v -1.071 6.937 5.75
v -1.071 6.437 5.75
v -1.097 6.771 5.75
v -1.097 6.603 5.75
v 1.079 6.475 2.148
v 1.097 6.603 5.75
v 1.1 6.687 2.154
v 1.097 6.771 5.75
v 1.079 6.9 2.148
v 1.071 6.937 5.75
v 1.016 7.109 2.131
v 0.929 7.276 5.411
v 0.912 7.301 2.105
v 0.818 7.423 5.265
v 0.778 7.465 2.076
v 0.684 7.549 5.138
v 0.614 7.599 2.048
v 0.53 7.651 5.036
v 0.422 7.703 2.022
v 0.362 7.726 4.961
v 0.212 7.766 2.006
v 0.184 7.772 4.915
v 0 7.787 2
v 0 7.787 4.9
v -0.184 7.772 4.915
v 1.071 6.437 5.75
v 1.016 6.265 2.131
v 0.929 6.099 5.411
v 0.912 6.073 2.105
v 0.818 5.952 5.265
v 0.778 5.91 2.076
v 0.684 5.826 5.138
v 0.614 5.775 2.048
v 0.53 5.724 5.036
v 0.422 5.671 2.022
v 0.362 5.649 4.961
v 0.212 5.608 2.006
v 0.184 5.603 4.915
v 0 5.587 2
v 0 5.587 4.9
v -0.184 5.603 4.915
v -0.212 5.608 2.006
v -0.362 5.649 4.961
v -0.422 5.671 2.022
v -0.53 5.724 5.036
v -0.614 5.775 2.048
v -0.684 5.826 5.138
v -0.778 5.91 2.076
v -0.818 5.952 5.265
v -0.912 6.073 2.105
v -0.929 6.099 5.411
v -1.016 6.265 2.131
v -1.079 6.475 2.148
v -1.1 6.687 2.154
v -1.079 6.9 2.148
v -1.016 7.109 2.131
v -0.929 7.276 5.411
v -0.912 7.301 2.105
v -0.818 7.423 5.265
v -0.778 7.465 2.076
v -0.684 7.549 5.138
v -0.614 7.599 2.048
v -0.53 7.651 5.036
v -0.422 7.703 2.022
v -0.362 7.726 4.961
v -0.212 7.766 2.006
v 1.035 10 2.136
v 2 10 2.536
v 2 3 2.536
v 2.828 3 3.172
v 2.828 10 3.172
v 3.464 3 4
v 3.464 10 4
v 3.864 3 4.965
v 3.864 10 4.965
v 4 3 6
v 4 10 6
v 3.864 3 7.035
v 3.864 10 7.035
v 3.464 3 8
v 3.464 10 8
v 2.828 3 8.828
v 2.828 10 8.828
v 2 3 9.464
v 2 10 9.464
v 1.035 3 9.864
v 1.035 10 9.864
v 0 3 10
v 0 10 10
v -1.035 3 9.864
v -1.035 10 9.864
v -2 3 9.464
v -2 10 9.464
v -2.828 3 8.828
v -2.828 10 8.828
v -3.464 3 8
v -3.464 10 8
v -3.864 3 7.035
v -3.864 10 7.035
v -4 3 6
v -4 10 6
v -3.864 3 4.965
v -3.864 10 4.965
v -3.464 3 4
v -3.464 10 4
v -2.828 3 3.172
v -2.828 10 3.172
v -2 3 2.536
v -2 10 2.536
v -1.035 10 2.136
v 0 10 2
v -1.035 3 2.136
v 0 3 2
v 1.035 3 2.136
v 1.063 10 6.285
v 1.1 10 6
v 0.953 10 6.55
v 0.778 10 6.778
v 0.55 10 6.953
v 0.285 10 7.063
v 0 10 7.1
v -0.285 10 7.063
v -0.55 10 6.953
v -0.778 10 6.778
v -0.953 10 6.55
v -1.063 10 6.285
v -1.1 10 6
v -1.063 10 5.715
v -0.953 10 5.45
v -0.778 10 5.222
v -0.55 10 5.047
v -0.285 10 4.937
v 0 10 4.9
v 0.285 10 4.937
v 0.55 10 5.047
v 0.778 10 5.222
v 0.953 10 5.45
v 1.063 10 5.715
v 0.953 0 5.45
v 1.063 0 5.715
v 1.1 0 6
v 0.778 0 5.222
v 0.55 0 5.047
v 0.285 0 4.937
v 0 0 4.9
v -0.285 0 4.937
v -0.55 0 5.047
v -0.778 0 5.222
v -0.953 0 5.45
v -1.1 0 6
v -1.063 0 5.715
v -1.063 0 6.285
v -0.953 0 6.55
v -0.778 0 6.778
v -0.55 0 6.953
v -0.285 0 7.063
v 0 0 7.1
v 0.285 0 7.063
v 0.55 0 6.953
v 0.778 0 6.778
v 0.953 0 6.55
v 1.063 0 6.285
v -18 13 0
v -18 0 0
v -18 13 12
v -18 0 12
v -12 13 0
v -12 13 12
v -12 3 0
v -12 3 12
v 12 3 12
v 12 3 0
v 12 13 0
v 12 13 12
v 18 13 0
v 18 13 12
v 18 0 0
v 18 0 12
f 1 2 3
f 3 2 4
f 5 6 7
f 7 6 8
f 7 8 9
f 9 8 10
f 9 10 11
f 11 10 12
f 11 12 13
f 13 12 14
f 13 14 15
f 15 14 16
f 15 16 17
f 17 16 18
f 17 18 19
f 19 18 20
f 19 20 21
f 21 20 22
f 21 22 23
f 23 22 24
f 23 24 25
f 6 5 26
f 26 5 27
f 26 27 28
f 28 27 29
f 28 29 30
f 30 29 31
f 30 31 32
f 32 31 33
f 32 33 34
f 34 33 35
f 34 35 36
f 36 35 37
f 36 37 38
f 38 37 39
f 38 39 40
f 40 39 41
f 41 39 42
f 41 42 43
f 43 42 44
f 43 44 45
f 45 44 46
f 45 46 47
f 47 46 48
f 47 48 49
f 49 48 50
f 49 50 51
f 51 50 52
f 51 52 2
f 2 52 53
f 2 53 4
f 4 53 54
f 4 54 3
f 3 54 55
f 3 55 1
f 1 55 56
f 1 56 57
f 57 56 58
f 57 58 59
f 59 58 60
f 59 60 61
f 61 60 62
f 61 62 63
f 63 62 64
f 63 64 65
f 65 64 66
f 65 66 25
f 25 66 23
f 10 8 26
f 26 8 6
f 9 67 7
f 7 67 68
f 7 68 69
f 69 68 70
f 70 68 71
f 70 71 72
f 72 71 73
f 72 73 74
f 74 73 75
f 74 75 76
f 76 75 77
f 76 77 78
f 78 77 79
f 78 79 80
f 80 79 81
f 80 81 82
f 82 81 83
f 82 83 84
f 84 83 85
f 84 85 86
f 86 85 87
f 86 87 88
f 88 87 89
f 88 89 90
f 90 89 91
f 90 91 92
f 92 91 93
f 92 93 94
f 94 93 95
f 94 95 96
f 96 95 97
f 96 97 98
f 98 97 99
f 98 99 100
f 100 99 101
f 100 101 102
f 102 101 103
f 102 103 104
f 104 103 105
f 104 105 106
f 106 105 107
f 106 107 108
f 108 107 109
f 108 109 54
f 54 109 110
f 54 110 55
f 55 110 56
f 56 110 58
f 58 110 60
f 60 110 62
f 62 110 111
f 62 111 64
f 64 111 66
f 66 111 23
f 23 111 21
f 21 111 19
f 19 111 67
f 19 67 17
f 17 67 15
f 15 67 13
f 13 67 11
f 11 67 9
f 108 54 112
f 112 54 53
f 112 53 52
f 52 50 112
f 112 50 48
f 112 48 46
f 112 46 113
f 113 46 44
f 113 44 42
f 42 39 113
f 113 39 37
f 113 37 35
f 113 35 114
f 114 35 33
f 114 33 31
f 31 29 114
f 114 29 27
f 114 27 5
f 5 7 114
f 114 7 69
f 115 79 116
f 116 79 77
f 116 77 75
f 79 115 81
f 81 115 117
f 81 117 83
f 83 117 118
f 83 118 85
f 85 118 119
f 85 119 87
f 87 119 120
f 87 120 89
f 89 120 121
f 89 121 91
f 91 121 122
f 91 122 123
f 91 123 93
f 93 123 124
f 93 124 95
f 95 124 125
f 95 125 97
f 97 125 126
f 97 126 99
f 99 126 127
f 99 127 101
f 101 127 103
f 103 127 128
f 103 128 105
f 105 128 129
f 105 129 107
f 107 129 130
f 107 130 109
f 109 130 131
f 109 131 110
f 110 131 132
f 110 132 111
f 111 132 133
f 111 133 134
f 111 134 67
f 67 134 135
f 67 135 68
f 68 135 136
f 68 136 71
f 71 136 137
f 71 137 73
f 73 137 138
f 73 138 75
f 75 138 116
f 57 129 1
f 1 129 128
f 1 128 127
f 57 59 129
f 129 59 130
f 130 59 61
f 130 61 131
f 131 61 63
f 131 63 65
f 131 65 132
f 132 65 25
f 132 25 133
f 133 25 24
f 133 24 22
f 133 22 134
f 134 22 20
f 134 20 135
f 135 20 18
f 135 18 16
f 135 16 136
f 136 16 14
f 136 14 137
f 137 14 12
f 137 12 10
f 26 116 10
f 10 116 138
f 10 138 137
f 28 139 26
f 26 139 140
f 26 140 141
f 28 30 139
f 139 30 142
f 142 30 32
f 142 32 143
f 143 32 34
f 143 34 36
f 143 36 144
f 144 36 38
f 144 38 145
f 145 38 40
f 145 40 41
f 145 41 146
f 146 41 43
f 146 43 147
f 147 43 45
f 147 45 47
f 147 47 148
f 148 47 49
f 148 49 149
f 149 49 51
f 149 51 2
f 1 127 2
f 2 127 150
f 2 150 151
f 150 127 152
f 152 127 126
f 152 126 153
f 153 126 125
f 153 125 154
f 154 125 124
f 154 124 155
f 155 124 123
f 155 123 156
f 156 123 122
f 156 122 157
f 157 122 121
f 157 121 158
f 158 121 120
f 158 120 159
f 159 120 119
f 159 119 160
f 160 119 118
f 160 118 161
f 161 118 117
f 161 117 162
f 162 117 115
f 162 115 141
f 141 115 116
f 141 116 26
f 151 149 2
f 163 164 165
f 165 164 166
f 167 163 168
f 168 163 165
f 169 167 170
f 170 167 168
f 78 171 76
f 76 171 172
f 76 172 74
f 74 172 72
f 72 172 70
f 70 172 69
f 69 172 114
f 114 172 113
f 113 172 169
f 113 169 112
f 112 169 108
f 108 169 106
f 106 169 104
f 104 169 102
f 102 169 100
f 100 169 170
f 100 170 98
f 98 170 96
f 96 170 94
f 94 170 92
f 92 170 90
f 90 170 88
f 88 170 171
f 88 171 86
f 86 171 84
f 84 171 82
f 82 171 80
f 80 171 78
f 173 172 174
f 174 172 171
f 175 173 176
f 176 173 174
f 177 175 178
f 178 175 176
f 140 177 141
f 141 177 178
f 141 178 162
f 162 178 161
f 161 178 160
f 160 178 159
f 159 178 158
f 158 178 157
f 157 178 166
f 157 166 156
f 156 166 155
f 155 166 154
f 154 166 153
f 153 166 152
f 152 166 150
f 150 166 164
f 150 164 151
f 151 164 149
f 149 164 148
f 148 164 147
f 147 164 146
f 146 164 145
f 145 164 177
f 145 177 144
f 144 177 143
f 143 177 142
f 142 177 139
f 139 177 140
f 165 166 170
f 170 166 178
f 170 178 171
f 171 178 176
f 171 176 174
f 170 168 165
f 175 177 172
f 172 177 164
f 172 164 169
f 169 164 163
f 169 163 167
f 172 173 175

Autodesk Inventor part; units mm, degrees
ref_plane "YZ Plane" through (0, 0, 0) normal (1, 0, 0) x (0, 1, 0)
ref_plane "XZ Plane" through (0, 0, 0) normal (0, 1, 0) x (-1, 0, 0)
ref_plane "XY Plane" through (0, 0, 0) normal (0, 0, 1) x (1, 0, 0)
sketch "Sketch1" plane through (0, 0, 0) normal (0, 0, 1) x (1, 0, 0)
  line L0 (0, 0) -> (18, 0)
  line L1 (18, 0) -> (18, 13)
  line L2 (18, 13) -> (12, 13)
  line L3 (12, 13) -> (12, 3)
  line L4 (12, 3) -> (0, 3)
  line L5 (0, 3) -> (0, 0) construction
  line L6 (0, 0) -> (-18, 0)
  line L7 (-18, 0) -> (-18, 13)
  line L8 (-18, 13) -> (-12, 13)
  line L9 (-12, 13) -> (-12, 3)
  line L10 (-12, 3) -> (0, 3)
  point P0 (15, 13)
  dimension "d2" = 6
  dimension "d3" = 3
  dimension "d4" = 13
  dimension "d18" = 15
extrude "Extrusion1" add sketch "Sketch1" along normal blind 12
sketch "Sketch2" plane through (-18, 0, 0) normal (0, -1, 0) x (1, 0, 0)
  circle A0 centre (18, 6) radius 1.1
  line L0 (0, 0) -> (36, 0) projected
  line L1 (0, 0) -> (0, 12) projected
  point P0 (18, 0)
  dimension "d7" = 2.2
  dimension "d19" = 6
  dimension "d20" = 18
extrude "Extrusion2" cut sketch "Sketch2" against normal blind 12
sketch "Sketch3" plane through (-12, 3, 0) normal (0, 1, 0) x (1, 0, 0)
  circle A0 centre (12, -6) radius 1.1 projected
  circle A1 centre (12, -6) radius 4
  point P0 (12, 0)
  dimension "d11" = 8
extrude "Extrusion3" add sketch "Sketch3" along normal blind 7
sketch "Sketch5" plane through (0, 0, 0) normal (0, 0, -1) x (-1, 0, 0)
  circle A0 centre (0, 6.6873) radius 1.1
  line L0 (-12, 3) -> (12, 3) projected
  point P0 (0, 3)
  dimension "d29" = 2.2
extrude "Extrusion5" cut sketch "Sketch5" against normal blind 5.75
equation "\"d19\" = 0.5 * d5"
equation "\"d20\" = d18 + 0.5 * d2"
equation "\"d5\" = 12"
properties part number "Support_Holder" material "ABS Plastic"
